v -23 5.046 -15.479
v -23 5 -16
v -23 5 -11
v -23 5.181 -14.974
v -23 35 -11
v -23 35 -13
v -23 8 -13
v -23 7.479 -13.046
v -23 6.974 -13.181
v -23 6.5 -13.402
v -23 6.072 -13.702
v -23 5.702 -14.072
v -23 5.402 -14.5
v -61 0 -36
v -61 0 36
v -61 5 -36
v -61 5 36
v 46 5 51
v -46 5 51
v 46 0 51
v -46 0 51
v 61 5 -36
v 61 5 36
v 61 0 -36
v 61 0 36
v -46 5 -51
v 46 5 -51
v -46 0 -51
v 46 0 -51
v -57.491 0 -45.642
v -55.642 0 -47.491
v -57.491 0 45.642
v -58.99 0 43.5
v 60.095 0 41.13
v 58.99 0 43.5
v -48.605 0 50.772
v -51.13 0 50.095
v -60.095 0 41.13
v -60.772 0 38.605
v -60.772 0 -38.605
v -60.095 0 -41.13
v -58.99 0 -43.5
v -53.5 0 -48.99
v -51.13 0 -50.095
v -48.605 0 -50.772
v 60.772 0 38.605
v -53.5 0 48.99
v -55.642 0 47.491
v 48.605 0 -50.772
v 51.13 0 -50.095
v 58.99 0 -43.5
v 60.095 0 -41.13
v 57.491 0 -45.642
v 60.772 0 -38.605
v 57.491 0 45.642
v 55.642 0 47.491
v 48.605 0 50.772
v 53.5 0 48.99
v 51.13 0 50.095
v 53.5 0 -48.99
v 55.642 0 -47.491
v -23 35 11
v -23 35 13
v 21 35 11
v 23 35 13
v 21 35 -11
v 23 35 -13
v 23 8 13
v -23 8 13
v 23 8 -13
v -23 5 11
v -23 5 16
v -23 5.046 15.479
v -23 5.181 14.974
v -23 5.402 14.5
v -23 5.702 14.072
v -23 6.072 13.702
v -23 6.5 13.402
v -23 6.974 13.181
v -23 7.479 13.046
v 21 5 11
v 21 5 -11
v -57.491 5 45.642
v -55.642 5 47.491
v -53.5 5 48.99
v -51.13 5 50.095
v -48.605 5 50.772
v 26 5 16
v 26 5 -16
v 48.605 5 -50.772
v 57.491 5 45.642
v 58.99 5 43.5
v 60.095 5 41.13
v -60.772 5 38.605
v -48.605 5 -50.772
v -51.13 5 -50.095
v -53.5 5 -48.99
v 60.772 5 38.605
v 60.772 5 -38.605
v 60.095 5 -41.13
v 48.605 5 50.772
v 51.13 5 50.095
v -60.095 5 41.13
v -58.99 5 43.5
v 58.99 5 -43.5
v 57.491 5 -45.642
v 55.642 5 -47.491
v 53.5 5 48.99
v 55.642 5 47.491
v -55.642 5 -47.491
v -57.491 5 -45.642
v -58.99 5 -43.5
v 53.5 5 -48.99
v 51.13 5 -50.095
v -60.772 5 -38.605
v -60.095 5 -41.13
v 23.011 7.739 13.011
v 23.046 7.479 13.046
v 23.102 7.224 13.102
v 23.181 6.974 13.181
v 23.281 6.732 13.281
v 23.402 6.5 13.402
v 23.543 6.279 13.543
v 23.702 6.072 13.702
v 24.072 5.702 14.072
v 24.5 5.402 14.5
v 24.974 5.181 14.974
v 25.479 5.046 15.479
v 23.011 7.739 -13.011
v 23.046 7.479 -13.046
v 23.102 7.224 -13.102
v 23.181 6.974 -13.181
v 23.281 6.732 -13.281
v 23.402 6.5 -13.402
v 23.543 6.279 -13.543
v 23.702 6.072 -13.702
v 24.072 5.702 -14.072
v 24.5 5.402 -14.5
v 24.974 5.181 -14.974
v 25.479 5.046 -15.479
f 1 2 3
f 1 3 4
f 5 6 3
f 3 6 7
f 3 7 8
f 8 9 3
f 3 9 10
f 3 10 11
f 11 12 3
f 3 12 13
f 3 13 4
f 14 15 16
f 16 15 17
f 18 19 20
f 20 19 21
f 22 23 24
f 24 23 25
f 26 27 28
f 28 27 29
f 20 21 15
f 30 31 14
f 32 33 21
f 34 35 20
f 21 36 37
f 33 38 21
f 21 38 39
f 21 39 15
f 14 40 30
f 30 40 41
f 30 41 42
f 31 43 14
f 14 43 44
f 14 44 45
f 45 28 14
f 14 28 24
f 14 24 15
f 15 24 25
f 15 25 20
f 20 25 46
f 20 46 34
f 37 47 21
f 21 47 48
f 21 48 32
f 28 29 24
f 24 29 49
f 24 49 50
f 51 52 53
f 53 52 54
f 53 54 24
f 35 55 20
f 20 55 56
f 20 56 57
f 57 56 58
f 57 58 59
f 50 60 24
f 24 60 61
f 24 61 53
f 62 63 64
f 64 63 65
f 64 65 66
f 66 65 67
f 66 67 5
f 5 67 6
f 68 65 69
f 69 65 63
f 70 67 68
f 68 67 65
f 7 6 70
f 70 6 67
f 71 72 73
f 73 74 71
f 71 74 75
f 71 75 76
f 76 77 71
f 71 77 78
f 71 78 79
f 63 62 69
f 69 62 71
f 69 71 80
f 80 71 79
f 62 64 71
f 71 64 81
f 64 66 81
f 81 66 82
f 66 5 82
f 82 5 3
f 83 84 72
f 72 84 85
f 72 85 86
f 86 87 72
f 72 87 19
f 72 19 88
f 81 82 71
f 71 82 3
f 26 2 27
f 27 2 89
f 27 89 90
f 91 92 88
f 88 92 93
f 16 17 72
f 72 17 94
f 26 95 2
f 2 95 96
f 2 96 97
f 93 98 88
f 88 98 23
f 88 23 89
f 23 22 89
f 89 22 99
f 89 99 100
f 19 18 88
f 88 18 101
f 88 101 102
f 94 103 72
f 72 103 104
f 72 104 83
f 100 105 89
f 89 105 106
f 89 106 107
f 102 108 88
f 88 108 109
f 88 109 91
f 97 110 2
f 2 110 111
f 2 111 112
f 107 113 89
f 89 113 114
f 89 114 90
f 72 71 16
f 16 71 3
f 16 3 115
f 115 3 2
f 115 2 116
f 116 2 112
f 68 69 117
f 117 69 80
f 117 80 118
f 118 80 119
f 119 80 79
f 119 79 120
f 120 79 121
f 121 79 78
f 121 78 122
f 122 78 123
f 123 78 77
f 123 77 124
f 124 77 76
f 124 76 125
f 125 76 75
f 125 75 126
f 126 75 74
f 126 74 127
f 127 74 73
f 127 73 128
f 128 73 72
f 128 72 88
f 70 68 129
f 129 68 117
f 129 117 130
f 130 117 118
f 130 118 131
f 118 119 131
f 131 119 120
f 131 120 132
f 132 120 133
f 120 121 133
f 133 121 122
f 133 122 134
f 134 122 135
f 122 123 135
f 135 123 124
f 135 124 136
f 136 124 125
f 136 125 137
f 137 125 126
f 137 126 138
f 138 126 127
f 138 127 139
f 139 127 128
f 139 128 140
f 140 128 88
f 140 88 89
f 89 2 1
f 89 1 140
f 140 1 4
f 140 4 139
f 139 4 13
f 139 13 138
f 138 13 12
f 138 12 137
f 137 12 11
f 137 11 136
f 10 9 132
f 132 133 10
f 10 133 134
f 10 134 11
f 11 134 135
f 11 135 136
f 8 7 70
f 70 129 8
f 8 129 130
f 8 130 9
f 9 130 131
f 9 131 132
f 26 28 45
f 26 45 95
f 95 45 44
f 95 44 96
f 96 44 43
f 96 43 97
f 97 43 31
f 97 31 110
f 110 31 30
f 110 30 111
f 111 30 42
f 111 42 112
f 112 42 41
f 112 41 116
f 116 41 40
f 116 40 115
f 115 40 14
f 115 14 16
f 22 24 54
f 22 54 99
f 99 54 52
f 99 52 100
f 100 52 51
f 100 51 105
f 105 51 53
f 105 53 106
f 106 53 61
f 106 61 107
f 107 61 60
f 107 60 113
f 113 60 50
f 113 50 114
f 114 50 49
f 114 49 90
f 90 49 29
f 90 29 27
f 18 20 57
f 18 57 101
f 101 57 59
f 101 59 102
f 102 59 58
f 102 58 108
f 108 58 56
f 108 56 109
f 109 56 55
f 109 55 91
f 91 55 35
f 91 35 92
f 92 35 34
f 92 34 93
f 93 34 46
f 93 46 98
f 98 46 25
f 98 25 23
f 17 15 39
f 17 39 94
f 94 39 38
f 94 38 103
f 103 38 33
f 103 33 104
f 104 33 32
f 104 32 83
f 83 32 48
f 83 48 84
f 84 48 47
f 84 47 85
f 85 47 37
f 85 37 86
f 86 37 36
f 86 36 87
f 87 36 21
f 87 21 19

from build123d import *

# Parameters (mm, degrees)
SKETCH1_W           = 122
SKETCH1_H           = 102
BOSS_EXTRUDE1_DEPTH = 5
SKETCH2_W           = 46
SKETCH2_H           = 26
SKETCH2_W_2         = 42
SKETCH2_H_2         = 22
BOSS_EXTRUDE2_DEPTH = 30
SKETCH3_W           = 22
SKETCH3_H           = 30
CUT_EXTRUDE1_DEPTH  = 2
FILLET1_R           = 3
FILLET2_R           = 15


with BuildPart() as part:
    # Sketch1 → Boss-Extrude1 (new body)
    with BuildSketch(Plane(origin=(0, 0, 0), x_dir=(1, 0, 0), z_dir=(0, 1, 0))):
        Rectangle(SKETCH1_W, SKETCH1_H)
    extrude(amount=BOSS_EXTRUDE1_DEPTH)

    # Sketch2 → Boss-Extrude2 (add)
    with BuildSketch(Plane(origin=(0, 5, 0), x_dir=(1, 0, 0), z_dir=(0, 1, 0))):
        Rectangle(SKETCH2_W, SKETCH2_H)
        Rectangle(SKETCH2_W_2, SKETCH2_H_2, mode=Mode.SUBTRACT)
    extrude(amount=BOSS_EXTRUDE2_DEPTH)

    # Sketch3 → Cut-Extrude1 (cut)
    with BuildSketch(Plane.ZY.offset(23)):
        with Locations((0, 20)):
            Rectangle(SKETCH3_W, SKETCH3_H)
    extrude(amount=-CUT_EXTRUDE1_DEPTH, mode=Mode.SUBTRACT)

    # Fillet1
    fillet1_edges = [part.edges().sort_by_distance(p)[0] for p in [
        (0, 5, 13),
        (23, 5, 0),
        (0, 5, -13),
    ]]
    fillet(fillet1_edges, radius=FILLET1_R)

    # Fillet2
    fillet2_edges = [part.edges().sort_by_distance(p)[0] for p in [
        (-61, 2.5, -51),
        (61, 2.5, -51),
        (61, 2.5, 51),
        (-61, 2.5, 51),
    ]]
    fillet(fillet2_edges, radius=FILLET2_R)


solid = part.part
